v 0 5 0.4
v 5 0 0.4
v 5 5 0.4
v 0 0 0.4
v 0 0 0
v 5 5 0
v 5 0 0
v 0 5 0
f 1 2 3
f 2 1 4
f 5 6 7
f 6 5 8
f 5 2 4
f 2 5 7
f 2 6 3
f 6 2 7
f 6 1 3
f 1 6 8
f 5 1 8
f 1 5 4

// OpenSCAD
/* Warning, this is a very basic generator with a lot of approximation 
input data : [XQFN, TVB, 5x5x0.4mm, 52, , A, C04-21447A]
generated by com.zoubworld.electronics.cad.model3d.Basic
Date : Sun Feb 15 10:50:49 CET 2026
*/

//body
color("black")
translate([0,0,0])
cube([5.0,5.0,0.4], center=false);
